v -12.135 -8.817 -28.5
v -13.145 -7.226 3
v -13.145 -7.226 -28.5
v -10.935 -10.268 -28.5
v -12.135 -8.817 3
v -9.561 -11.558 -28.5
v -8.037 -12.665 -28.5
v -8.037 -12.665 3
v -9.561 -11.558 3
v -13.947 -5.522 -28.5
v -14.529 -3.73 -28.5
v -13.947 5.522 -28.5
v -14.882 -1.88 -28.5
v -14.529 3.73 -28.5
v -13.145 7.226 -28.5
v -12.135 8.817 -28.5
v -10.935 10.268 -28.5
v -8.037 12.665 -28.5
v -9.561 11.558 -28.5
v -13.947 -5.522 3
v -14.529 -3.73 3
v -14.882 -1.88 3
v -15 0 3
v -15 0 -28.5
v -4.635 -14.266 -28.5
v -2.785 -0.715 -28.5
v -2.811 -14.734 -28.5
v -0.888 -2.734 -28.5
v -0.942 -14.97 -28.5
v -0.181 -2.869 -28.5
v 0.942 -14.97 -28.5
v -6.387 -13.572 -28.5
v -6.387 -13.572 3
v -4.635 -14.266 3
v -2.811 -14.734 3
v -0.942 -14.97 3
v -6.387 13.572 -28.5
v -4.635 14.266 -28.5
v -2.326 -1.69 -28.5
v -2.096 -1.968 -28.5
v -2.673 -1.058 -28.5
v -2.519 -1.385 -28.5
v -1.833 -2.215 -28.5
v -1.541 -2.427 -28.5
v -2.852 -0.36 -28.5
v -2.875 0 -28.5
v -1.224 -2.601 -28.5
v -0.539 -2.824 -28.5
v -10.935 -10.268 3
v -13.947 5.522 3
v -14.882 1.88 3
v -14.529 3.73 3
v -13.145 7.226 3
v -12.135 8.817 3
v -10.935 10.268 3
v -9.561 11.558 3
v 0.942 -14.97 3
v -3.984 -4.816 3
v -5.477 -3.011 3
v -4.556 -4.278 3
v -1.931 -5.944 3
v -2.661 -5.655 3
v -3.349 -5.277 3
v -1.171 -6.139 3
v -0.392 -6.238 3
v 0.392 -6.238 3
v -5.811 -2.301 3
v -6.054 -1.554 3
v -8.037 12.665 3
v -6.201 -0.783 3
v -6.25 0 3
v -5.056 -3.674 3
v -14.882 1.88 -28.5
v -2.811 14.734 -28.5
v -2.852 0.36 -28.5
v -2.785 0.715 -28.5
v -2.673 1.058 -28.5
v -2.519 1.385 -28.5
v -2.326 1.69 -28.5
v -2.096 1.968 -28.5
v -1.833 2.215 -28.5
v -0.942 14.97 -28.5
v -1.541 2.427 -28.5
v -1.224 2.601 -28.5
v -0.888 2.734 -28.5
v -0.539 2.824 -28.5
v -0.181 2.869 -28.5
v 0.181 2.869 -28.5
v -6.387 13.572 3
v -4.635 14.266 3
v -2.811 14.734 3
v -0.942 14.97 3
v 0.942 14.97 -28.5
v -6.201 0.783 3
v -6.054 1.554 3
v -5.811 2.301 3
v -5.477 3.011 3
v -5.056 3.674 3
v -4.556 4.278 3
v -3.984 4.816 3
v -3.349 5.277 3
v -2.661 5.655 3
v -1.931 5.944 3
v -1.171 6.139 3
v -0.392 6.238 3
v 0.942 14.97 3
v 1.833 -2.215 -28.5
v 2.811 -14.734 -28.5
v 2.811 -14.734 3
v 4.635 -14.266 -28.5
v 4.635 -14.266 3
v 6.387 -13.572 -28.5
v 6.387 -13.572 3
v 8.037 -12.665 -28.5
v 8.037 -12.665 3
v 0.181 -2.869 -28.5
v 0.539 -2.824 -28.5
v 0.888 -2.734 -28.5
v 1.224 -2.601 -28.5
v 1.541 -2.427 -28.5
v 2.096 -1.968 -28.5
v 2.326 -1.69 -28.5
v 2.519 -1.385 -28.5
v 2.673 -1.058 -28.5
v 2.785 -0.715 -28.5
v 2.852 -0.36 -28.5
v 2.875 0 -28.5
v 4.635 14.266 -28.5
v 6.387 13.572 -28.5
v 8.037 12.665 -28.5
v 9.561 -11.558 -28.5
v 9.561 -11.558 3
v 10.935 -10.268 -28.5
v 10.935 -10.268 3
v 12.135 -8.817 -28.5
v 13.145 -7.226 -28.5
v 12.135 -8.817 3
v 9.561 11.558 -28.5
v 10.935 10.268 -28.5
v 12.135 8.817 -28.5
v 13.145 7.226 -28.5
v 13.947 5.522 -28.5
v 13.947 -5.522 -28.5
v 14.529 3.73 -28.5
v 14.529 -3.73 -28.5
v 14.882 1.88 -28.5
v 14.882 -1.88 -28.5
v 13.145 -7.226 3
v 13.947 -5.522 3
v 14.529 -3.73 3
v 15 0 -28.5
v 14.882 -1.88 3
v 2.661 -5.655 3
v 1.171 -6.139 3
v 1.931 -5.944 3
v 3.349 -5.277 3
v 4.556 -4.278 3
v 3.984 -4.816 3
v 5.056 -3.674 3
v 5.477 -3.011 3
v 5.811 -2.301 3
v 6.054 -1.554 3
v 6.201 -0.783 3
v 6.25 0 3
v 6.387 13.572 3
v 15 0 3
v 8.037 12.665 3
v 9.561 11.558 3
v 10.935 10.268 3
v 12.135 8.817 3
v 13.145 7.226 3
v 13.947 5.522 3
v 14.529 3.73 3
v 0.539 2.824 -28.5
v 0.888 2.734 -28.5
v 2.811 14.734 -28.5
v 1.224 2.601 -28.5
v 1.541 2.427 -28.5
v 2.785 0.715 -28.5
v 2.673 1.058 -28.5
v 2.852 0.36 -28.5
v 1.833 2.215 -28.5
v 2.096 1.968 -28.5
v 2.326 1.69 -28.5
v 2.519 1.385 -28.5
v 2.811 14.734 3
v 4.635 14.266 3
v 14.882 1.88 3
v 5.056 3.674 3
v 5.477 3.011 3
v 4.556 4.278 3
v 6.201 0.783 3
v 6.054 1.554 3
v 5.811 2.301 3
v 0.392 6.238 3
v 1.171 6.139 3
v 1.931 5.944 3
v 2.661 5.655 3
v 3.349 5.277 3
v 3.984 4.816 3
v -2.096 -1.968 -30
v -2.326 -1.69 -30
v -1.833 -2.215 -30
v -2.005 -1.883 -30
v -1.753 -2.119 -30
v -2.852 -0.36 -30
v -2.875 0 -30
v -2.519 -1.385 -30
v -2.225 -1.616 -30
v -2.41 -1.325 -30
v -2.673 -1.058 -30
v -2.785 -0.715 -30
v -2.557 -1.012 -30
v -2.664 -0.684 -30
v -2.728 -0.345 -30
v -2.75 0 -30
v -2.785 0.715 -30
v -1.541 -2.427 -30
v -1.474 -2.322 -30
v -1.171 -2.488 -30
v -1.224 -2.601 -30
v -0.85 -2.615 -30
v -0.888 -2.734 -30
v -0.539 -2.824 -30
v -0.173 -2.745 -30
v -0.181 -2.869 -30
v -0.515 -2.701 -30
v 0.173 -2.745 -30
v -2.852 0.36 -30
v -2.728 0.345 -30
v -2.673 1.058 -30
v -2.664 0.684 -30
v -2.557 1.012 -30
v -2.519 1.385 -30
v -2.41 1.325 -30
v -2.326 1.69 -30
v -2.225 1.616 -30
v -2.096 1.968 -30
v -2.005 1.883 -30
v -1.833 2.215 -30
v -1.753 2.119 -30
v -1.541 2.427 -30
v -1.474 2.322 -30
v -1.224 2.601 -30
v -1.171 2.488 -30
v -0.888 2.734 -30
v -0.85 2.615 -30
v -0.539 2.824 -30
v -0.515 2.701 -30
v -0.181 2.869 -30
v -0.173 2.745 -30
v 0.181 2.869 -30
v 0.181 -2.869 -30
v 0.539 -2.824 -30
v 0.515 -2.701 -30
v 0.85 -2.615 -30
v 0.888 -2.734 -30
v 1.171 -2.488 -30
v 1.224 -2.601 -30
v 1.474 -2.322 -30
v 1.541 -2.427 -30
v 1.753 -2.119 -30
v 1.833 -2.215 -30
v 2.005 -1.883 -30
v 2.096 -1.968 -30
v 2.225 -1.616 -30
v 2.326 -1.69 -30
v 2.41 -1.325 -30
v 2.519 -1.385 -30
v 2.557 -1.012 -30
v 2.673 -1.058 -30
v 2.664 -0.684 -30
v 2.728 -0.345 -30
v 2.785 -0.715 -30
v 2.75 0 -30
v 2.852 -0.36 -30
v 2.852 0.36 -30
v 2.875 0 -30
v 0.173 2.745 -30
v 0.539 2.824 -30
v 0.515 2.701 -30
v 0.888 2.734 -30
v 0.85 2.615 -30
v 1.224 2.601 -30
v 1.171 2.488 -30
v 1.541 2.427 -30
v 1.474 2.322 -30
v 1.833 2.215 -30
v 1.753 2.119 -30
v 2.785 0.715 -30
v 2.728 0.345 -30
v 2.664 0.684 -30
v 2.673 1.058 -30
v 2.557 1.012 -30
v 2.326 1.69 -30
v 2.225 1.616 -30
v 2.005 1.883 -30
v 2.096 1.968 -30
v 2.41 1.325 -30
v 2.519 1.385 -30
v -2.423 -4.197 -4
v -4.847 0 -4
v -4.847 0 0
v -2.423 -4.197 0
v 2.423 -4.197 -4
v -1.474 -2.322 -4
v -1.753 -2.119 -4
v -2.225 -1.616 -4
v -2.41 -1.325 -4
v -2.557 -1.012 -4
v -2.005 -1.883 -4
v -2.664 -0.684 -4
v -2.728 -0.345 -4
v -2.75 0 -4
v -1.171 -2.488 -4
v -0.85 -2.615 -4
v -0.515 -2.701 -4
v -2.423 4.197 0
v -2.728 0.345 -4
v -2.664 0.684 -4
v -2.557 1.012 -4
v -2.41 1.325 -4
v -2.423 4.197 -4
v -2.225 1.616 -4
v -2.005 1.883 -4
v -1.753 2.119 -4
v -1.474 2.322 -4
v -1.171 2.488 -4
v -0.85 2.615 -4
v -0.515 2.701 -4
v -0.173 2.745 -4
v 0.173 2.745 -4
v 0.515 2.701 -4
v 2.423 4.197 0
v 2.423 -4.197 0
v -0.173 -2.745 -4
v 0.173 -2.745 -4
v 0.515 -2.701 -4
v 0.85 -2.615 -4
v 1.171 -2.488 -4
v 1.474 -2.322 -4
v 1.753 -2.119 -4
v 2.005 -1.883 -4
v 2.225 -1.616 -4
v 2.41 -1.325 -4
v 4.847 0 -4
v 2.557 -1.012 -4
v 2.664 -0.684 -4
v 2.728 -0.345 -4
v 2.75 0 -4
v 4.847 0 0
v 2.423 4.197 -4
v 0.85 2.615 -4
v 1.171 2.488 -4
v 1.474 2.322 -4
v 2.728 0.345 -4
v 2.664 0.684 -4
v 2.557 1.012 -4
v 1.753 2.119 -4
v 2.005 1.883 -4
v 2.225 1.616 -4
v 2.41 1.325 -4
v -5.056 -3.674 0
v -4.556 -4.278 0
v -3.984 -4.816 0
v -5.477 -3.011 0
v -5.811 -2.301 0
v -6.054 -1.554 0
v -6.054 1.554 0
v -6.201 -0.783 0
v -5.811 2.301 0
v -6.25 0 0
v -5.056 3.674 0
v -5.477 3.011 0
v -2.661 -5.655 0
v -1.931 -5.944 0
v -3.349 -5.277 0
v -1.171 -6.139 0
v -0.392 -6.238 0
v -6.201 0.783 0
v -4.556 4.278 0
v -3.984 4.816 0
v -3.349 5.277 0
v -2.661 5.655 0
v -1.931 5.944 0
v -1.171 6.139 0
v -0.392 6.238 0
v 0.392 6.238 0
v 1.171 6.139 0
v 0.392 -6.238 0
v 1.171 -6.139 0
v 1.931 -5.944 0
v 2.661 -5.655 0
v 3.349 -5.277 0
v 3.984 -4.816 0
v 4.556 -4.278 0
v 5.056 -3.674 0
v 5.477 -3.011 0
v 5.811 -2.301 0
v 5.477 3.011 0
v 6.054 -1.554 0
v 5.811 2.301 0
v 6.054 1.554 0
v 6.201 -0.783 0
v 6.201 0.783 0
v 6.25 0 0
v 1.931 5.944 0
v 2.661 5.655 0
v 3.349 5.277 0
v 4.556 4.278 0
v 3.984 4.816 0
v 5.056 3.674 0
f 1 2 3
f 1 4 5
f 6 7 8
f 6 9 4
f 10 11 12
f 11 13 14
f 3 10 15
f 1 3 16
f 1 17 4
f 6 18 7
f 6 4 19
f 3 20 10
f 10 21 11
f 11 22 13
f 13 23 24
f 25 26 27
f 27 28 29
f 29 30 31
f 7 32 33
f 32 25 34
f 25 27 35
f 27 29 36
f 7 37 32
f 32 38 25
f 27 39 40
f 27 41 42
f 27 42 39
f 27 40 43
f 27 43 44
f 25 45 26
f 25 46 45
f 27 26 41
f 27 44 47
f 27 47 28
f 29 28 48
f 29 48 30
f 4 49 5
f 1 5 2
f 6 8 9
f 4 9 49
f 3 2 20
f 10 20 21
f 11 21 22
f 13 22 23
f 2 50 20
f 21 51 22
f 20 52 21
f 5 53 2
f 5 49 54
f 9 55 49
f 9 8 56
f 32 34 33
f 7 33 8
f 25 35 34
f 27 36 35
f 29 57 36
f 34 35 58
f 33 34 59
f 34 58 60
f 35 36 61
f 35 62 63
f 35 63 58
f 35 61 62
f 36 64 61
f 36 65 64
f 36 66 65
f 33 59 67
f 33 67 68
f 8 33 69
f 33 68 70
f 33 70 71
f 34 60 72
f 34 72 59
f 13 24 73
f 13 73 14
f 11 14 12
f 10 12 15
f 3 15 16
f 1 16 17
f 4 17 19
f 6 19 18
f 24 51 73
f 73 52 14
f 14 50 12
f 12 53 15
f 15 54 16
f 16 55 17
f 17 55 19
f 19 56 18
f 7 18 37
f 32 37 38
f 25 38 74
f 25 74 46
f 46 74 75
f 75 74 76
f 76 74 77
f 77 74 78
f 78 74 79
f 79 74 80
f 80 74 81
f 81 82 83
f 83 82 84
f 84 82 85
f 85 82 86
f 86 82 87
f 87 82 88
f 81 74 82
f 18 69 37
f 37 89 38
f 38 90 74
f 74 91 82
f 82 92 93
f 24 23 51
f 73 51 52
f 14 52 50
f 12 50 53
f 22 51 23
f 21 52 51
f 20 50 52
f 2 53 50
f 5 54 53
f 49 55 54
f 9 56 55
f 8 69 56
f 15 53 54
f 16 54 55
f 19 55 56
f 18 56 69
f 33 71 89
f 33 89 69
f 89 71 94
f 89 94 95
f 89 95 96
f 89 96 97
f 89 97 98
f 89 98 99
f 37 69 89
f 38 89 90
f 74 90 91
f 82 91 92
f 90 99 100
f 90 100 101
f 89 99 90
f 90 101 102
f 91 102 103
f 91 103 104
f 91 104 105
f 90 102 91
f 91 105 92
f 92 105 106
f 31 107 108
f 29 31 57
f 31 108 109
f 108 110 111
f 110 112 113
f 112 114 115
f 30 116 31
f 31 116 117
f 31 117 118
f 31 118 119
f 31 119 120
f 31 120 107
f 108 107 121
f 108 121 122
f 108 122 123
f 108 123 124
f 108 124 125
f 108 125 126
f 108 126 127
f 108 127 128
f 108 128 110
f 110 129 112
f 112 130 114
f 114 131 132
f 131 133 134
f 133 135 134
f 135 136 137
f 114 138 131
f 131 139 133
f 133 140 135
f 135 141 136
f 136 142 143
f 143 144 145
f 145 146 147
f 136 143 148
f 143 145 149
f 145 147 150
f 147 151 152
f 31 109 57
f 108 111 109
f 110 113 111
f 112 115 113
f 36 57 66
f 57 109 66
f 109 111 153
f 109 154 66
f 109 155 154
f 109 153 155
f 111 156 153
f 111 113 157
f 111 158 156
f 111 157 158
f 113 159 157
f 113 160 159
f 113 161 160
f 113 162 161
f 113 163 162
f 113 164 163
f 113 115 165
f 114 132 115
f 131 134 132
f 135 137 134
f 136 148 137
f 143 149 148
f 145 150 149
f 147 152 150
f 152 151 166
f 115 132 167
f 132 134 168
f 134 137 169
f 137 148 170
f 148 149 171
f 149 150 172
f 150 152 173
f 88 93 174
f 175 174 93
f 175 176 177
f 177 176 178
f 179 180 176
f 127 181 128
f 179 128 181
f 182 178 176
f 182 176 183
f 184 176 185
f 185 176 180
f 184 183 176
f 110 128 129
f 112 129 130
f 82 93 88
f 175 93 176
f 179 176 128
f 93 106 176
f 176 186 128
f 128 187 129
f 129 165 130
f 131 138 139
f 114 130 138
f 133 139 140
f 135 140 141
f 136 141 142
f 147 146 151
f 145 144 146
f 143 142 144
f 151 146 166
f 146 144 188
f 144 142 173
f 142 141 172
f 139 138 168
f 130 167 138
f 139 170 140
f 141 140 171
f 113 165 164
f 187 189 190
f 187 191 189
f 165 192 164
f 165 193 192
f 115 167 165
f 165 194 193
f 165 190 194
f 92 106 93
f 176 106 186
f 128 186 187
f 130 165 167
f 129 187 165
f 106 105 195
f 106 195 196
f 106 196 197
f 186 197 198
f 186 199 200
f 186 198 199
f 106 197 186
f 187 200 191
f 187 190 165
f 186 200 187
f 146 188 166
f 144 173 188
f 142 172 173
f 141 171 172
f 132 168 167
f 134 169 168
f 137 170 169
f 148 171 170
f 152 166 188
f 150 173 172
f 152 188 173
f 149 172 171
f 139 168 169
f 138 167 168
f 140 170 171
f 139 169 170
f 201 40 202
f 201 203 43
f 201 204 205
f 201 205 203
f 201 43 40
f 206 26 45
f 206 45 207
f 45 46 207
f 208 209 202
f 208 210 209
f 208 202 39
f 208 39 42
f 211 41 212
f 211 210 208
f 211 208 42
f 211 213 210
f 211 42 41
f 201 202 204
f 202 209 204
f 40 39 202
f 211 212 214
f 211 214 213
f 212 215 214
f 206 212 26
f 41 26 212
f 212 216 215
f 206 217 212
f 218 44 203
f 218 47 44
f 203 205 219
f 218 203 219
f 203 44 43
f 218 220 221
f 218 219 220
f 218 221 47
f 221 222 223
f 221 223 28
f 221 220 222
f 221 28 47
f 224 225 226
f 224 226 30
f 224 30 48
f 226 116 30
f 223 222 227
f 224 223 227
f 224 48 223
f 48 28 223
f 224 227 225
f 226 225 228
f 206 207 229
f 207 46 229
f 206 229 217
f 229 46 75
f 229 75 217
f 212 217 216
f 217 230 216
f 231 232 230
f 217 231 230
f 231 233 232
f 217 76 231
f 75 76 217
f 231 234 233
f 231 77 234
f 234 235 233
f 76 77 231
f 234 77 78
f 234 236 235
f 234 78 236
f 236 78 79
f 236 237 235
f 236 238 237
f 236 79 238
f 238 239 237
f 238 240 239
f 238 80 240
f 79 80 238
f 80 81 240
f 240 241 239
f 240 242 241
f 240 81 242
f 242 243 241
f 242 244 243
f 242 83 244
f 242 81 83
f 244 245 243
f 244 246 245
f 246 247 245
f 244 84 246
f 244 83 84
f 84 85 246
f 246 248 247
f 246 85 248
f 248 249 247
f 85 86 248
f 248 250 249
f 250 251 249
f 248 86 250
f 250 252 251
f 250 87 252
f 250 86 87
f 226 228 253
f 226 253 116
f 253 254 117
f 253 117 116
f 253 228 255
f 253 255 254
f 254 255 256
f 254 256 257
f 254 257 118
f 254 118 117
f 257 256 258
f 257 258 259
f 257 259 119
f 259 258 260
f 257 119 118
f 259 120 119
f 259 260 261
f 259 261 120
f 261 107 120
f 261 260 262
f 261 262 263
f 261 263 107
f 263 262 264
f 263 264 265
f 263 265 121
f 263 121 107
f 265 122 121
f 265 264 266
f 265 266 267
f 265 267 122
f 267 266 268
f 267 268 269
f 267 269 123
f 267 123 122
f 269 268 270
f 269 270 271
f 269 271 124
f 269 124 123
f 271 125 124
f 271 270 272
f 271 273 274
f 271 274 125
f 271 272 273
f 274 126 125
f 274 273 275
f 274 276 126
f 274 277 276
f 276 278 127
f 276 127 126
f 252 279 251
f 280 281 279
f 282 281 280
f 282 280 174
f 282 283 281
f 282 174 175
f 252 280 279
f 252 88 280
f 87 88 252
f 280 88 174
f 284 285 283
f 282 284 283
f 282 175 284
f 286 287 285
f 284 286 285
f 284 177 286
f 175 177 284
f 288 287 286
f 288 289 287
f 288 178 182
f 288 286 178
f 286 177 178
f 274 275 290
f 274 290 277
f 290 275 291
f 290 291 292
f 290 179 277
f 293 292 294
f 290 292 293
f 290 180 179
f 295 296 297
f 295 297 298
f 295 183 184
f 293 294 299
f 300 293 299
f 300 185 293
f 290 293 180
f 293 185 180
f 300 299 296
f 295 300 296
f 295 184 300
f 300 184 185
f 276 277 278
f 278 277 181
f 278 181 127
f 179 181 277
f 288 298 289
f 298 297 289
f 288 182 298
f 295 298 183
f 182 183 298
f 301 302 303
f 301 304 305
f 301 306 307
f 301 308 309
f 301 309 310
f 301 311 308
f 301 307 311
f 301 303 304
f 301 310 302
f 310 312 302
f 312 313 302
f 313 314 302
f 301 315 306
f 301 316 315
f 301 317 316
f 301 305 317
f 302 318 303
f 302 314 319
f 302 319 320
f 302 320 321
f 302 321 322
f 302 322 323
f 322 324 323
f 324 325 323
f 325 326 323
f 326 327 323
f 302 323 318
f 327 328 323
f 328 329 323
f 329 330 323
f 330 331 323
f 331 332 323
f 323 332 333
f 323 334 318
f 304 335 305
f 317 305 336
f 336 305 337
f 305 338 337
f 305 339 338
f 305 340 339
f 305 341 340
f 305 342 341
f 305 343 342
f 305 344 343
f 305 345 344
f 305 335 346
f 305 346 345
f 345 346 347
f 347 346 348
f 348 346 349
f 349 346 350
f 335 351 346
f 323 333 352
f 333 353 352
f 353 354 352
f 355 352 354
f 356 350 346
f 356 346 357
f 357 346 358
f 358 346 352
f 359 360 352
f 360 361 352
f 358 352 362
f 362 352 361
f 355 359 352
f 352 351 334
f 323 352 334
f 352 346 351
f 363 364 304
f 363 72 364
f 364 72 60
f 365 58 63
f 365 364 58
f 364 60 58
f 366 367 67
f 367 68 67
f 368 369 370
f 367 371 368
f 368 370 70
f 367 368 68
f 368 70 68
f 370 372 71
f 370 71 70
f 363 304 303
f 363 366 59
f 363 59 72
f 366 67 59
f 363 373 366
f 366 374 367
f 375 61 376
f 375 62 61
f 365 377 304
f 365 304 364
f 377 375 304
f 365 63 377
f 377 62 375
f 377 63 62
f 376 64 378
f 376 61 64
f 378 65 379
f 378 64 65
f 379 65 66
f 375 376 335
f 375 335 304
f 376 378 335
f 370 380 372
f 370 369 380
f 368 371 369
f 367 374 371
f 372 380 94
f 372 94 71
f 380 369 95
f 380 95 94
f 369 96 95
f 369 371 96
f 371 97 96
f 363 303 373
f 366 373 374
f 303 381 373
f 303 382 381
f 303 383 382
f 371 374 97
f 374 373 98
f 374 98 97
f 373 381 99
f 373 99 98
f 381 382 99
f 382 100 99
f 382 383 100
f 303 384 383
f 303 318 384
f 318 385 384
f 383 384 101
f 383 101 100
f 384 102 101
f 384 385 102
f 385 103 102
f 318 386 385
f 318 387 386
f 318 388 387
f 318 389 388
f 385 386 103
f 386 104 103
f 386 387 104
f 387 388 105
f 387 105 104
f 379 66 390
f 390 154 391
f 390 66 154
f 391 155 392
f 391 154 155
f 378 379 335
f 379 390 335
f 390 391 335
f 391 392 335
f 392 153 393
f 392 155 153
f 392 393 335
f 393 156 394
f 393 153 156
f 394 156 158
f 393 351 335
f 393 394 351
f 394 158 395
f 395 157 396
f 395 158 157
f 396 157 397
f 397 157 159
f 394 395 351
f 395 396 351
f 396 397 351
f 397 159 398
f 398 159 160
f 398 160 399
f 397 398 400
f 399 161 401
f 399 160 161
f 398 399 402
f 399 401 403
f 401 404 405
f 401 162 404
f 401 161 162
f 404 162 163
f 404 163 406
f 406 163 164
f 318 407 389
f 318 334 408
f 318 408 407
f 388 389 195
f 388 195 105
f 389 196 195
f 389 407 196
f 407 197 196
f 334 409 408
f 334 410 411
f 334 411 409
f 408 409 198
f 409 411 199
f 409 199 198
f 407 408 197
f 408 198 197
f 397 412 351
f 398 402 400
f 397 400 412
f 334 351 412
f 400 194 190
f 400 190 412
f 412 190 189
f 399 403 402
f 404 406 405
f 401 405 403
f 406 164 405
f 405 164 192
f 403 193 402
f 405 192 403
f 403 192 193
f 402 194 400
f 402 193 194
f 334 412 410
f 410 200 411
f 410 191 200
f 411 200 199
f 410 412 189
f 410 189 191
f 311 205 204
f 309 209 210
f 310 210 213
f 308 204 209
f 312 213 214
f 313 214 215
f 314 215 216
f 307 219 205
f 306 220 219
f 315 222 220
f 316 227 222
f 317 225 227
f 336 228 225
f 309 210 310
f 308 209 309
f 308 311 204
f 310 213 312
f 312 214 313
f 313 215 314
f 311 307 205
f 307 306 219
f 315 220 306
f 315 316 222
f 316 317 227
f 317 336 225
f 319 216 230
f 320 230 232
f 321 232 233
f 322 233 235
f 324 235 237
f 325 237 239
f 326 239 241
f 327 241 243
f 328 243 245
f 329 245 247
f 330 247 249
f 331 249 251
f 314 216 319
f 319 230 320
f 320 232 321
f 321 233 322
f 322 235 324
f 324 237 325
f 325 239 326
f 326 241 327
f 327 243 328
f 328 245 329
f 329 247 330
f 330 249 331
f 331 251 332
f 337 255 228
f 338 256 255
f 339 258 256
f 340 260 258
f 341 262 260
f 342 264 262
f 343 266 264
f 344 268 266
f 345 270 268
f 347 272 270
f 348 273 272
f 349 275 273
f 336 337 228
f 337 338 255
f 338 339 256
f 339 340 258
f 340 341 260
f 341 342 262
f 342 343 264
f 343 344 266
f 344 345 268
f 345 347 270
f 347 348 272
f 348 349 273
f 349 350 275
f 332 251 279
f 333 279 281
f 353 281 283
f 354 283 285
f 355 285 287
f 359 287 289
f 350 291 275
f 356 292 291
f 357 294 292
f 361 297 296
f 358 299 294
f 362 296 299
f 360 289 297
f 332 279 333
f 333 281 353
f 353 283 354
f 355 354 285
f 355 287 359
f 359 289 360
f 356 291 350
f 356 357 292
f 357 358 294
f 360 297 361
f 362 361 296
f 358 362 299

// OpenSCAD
$fn = 50;

difference() {
	union() {
		translate(v = [0, 0, -28.5]) {
			cylinder(h = 31.5, r = 15.0);
		}
		#translate(v = [0, 0, -30.0]) {
			cylinder(h = 30, r = 2.875);
		}
	}
	union() {
		translate(v = [0, 0, 0]) {
			rotate(a = [0, 0, 0]) {
				difference() {
					union() {
						translate(v = [0, 0, -4]) {
							linear_extrude(height = 4) {
								polygon(points = [[4.8468, 0.0], [2.4234000000000004, 4.197451927062417], [-2.423399999999999, 4.197451927062417], [-4.8468, 5.935618106107392e-16], [-2.423400000000002, -4.197451927062416], [2.423399999999997, -4.197451927062419]]);
							}
						}
					}
					union();
				}
			}
		}
		#cylinder(h = 3, r = 6.25);
		#translate(v = [0, 0, -100.0]) {
			cylinder(h = 200, r = 2.75);
		}
	}
}
